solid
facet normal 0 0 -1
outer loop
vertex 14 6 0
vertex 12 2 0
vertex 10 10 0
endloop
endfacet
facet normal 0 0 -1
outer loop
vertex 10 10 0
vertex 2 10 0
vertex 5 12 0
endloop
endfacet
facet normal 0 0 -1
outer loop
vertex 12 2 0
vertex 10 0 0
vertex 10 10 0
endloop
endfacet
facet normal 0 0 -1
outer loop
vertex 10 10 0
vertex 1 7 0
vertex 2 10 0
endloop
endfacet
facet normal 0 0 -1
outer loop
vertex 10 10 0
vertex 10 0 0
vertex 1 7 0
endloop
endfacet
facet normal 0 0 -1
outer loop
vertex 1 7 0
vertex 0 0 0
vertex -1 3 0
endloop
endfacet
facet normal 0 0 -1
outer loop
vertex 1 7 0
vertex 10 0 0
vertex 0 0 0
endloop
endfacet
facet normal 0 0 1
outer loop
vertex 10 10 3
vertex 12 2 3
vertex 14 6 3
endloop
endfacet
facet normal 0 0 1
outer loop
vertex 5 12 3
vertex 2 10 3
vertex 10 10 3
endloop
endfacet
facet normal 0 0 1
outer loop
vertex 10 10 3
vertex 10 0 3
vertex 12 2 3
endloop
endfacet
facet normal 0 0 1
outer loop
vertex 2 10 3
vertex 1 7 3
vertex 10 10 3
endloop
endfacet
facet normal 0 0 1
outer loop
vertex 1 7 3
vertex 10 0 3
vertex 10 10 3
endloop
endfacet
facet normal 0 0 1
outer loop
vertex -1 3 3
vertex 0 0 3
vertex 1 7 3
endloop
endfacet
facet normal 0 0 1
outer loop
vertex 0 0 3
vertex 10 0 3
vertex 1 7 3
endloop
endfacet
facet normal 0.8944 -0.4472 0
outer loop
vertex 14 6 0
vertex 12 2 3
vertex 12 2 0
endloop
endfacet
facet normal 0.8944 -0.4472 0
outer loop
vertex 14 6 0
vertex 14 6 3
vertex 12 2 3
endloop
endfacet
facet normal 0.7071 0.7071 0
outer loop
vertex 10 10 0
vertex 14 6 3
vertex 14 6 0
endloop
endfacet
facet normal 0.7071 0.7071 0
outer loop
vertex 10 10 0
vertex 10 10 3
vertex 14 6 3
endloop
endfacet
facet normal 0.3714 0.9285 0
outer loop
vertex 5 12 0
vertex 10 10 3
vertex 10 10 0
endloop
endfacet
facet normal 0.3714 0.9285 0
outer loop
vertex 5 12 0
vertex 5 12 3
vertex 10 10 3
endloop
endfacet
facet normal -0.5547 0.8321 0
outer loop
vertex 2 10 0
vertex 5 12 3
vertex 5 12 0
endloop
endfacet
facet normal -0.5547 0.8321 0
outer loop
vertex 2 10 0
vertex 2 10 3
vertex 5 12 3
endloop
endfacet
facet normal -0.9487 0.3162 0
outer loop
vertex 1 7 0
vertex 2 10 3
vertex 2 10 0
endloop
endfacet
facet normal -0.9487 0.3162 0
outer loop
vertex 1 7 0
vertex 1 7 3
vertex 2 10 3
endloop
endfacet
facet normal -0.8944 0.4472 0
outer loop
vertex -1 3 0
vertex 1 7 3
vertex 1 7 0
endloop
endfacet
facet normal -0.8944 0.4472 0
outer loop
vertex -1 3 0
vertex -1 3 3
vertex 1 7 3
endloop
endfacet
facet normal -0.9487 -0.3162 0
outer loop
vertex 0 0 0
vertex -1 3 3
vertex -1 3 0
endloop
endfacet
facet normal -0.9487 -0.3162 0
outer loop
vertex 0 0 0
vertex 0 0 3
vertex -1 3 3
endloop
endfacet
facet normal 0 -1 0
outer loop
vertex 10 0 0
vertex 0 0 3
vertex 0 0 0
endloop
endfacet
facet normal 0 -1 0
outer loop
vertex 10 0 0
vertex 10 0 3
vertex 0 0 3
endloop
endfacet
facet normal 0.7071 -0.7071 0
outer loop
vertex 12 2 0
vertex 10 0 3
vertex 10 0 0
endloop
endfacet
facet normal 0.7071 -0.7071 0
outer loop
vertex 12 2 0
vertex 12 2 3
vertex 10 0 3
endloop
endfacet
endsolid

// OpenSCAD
// Parameters
thickness = 3; // Uniform thickness of the plate

// 2D profile of the asymmetrical flat plate
module asymmetrical_flat_plate() {
    polygon(points=[
        [0, 0],           // Start at bottom left
        [10, 0],          // Bottom edge
        [12, 2],          // Notch on right side
        [14, 6],          // Right edge
        [10, 10],         // Top right
        [5, 12],          // Sharp angled point
        [2, 10],          // Top left
        [1, 7],           // Concave curve start
        [0, 5],           // Concave curve end
        [-1, 3],          // Semicircular protrusion start
        [0, 0]            // Close the shape
    ]);
}

// Extrude the 2D profile to create the 3D object
linear_extrude(height = thickness)
    asymmetrical_flat_plate();
